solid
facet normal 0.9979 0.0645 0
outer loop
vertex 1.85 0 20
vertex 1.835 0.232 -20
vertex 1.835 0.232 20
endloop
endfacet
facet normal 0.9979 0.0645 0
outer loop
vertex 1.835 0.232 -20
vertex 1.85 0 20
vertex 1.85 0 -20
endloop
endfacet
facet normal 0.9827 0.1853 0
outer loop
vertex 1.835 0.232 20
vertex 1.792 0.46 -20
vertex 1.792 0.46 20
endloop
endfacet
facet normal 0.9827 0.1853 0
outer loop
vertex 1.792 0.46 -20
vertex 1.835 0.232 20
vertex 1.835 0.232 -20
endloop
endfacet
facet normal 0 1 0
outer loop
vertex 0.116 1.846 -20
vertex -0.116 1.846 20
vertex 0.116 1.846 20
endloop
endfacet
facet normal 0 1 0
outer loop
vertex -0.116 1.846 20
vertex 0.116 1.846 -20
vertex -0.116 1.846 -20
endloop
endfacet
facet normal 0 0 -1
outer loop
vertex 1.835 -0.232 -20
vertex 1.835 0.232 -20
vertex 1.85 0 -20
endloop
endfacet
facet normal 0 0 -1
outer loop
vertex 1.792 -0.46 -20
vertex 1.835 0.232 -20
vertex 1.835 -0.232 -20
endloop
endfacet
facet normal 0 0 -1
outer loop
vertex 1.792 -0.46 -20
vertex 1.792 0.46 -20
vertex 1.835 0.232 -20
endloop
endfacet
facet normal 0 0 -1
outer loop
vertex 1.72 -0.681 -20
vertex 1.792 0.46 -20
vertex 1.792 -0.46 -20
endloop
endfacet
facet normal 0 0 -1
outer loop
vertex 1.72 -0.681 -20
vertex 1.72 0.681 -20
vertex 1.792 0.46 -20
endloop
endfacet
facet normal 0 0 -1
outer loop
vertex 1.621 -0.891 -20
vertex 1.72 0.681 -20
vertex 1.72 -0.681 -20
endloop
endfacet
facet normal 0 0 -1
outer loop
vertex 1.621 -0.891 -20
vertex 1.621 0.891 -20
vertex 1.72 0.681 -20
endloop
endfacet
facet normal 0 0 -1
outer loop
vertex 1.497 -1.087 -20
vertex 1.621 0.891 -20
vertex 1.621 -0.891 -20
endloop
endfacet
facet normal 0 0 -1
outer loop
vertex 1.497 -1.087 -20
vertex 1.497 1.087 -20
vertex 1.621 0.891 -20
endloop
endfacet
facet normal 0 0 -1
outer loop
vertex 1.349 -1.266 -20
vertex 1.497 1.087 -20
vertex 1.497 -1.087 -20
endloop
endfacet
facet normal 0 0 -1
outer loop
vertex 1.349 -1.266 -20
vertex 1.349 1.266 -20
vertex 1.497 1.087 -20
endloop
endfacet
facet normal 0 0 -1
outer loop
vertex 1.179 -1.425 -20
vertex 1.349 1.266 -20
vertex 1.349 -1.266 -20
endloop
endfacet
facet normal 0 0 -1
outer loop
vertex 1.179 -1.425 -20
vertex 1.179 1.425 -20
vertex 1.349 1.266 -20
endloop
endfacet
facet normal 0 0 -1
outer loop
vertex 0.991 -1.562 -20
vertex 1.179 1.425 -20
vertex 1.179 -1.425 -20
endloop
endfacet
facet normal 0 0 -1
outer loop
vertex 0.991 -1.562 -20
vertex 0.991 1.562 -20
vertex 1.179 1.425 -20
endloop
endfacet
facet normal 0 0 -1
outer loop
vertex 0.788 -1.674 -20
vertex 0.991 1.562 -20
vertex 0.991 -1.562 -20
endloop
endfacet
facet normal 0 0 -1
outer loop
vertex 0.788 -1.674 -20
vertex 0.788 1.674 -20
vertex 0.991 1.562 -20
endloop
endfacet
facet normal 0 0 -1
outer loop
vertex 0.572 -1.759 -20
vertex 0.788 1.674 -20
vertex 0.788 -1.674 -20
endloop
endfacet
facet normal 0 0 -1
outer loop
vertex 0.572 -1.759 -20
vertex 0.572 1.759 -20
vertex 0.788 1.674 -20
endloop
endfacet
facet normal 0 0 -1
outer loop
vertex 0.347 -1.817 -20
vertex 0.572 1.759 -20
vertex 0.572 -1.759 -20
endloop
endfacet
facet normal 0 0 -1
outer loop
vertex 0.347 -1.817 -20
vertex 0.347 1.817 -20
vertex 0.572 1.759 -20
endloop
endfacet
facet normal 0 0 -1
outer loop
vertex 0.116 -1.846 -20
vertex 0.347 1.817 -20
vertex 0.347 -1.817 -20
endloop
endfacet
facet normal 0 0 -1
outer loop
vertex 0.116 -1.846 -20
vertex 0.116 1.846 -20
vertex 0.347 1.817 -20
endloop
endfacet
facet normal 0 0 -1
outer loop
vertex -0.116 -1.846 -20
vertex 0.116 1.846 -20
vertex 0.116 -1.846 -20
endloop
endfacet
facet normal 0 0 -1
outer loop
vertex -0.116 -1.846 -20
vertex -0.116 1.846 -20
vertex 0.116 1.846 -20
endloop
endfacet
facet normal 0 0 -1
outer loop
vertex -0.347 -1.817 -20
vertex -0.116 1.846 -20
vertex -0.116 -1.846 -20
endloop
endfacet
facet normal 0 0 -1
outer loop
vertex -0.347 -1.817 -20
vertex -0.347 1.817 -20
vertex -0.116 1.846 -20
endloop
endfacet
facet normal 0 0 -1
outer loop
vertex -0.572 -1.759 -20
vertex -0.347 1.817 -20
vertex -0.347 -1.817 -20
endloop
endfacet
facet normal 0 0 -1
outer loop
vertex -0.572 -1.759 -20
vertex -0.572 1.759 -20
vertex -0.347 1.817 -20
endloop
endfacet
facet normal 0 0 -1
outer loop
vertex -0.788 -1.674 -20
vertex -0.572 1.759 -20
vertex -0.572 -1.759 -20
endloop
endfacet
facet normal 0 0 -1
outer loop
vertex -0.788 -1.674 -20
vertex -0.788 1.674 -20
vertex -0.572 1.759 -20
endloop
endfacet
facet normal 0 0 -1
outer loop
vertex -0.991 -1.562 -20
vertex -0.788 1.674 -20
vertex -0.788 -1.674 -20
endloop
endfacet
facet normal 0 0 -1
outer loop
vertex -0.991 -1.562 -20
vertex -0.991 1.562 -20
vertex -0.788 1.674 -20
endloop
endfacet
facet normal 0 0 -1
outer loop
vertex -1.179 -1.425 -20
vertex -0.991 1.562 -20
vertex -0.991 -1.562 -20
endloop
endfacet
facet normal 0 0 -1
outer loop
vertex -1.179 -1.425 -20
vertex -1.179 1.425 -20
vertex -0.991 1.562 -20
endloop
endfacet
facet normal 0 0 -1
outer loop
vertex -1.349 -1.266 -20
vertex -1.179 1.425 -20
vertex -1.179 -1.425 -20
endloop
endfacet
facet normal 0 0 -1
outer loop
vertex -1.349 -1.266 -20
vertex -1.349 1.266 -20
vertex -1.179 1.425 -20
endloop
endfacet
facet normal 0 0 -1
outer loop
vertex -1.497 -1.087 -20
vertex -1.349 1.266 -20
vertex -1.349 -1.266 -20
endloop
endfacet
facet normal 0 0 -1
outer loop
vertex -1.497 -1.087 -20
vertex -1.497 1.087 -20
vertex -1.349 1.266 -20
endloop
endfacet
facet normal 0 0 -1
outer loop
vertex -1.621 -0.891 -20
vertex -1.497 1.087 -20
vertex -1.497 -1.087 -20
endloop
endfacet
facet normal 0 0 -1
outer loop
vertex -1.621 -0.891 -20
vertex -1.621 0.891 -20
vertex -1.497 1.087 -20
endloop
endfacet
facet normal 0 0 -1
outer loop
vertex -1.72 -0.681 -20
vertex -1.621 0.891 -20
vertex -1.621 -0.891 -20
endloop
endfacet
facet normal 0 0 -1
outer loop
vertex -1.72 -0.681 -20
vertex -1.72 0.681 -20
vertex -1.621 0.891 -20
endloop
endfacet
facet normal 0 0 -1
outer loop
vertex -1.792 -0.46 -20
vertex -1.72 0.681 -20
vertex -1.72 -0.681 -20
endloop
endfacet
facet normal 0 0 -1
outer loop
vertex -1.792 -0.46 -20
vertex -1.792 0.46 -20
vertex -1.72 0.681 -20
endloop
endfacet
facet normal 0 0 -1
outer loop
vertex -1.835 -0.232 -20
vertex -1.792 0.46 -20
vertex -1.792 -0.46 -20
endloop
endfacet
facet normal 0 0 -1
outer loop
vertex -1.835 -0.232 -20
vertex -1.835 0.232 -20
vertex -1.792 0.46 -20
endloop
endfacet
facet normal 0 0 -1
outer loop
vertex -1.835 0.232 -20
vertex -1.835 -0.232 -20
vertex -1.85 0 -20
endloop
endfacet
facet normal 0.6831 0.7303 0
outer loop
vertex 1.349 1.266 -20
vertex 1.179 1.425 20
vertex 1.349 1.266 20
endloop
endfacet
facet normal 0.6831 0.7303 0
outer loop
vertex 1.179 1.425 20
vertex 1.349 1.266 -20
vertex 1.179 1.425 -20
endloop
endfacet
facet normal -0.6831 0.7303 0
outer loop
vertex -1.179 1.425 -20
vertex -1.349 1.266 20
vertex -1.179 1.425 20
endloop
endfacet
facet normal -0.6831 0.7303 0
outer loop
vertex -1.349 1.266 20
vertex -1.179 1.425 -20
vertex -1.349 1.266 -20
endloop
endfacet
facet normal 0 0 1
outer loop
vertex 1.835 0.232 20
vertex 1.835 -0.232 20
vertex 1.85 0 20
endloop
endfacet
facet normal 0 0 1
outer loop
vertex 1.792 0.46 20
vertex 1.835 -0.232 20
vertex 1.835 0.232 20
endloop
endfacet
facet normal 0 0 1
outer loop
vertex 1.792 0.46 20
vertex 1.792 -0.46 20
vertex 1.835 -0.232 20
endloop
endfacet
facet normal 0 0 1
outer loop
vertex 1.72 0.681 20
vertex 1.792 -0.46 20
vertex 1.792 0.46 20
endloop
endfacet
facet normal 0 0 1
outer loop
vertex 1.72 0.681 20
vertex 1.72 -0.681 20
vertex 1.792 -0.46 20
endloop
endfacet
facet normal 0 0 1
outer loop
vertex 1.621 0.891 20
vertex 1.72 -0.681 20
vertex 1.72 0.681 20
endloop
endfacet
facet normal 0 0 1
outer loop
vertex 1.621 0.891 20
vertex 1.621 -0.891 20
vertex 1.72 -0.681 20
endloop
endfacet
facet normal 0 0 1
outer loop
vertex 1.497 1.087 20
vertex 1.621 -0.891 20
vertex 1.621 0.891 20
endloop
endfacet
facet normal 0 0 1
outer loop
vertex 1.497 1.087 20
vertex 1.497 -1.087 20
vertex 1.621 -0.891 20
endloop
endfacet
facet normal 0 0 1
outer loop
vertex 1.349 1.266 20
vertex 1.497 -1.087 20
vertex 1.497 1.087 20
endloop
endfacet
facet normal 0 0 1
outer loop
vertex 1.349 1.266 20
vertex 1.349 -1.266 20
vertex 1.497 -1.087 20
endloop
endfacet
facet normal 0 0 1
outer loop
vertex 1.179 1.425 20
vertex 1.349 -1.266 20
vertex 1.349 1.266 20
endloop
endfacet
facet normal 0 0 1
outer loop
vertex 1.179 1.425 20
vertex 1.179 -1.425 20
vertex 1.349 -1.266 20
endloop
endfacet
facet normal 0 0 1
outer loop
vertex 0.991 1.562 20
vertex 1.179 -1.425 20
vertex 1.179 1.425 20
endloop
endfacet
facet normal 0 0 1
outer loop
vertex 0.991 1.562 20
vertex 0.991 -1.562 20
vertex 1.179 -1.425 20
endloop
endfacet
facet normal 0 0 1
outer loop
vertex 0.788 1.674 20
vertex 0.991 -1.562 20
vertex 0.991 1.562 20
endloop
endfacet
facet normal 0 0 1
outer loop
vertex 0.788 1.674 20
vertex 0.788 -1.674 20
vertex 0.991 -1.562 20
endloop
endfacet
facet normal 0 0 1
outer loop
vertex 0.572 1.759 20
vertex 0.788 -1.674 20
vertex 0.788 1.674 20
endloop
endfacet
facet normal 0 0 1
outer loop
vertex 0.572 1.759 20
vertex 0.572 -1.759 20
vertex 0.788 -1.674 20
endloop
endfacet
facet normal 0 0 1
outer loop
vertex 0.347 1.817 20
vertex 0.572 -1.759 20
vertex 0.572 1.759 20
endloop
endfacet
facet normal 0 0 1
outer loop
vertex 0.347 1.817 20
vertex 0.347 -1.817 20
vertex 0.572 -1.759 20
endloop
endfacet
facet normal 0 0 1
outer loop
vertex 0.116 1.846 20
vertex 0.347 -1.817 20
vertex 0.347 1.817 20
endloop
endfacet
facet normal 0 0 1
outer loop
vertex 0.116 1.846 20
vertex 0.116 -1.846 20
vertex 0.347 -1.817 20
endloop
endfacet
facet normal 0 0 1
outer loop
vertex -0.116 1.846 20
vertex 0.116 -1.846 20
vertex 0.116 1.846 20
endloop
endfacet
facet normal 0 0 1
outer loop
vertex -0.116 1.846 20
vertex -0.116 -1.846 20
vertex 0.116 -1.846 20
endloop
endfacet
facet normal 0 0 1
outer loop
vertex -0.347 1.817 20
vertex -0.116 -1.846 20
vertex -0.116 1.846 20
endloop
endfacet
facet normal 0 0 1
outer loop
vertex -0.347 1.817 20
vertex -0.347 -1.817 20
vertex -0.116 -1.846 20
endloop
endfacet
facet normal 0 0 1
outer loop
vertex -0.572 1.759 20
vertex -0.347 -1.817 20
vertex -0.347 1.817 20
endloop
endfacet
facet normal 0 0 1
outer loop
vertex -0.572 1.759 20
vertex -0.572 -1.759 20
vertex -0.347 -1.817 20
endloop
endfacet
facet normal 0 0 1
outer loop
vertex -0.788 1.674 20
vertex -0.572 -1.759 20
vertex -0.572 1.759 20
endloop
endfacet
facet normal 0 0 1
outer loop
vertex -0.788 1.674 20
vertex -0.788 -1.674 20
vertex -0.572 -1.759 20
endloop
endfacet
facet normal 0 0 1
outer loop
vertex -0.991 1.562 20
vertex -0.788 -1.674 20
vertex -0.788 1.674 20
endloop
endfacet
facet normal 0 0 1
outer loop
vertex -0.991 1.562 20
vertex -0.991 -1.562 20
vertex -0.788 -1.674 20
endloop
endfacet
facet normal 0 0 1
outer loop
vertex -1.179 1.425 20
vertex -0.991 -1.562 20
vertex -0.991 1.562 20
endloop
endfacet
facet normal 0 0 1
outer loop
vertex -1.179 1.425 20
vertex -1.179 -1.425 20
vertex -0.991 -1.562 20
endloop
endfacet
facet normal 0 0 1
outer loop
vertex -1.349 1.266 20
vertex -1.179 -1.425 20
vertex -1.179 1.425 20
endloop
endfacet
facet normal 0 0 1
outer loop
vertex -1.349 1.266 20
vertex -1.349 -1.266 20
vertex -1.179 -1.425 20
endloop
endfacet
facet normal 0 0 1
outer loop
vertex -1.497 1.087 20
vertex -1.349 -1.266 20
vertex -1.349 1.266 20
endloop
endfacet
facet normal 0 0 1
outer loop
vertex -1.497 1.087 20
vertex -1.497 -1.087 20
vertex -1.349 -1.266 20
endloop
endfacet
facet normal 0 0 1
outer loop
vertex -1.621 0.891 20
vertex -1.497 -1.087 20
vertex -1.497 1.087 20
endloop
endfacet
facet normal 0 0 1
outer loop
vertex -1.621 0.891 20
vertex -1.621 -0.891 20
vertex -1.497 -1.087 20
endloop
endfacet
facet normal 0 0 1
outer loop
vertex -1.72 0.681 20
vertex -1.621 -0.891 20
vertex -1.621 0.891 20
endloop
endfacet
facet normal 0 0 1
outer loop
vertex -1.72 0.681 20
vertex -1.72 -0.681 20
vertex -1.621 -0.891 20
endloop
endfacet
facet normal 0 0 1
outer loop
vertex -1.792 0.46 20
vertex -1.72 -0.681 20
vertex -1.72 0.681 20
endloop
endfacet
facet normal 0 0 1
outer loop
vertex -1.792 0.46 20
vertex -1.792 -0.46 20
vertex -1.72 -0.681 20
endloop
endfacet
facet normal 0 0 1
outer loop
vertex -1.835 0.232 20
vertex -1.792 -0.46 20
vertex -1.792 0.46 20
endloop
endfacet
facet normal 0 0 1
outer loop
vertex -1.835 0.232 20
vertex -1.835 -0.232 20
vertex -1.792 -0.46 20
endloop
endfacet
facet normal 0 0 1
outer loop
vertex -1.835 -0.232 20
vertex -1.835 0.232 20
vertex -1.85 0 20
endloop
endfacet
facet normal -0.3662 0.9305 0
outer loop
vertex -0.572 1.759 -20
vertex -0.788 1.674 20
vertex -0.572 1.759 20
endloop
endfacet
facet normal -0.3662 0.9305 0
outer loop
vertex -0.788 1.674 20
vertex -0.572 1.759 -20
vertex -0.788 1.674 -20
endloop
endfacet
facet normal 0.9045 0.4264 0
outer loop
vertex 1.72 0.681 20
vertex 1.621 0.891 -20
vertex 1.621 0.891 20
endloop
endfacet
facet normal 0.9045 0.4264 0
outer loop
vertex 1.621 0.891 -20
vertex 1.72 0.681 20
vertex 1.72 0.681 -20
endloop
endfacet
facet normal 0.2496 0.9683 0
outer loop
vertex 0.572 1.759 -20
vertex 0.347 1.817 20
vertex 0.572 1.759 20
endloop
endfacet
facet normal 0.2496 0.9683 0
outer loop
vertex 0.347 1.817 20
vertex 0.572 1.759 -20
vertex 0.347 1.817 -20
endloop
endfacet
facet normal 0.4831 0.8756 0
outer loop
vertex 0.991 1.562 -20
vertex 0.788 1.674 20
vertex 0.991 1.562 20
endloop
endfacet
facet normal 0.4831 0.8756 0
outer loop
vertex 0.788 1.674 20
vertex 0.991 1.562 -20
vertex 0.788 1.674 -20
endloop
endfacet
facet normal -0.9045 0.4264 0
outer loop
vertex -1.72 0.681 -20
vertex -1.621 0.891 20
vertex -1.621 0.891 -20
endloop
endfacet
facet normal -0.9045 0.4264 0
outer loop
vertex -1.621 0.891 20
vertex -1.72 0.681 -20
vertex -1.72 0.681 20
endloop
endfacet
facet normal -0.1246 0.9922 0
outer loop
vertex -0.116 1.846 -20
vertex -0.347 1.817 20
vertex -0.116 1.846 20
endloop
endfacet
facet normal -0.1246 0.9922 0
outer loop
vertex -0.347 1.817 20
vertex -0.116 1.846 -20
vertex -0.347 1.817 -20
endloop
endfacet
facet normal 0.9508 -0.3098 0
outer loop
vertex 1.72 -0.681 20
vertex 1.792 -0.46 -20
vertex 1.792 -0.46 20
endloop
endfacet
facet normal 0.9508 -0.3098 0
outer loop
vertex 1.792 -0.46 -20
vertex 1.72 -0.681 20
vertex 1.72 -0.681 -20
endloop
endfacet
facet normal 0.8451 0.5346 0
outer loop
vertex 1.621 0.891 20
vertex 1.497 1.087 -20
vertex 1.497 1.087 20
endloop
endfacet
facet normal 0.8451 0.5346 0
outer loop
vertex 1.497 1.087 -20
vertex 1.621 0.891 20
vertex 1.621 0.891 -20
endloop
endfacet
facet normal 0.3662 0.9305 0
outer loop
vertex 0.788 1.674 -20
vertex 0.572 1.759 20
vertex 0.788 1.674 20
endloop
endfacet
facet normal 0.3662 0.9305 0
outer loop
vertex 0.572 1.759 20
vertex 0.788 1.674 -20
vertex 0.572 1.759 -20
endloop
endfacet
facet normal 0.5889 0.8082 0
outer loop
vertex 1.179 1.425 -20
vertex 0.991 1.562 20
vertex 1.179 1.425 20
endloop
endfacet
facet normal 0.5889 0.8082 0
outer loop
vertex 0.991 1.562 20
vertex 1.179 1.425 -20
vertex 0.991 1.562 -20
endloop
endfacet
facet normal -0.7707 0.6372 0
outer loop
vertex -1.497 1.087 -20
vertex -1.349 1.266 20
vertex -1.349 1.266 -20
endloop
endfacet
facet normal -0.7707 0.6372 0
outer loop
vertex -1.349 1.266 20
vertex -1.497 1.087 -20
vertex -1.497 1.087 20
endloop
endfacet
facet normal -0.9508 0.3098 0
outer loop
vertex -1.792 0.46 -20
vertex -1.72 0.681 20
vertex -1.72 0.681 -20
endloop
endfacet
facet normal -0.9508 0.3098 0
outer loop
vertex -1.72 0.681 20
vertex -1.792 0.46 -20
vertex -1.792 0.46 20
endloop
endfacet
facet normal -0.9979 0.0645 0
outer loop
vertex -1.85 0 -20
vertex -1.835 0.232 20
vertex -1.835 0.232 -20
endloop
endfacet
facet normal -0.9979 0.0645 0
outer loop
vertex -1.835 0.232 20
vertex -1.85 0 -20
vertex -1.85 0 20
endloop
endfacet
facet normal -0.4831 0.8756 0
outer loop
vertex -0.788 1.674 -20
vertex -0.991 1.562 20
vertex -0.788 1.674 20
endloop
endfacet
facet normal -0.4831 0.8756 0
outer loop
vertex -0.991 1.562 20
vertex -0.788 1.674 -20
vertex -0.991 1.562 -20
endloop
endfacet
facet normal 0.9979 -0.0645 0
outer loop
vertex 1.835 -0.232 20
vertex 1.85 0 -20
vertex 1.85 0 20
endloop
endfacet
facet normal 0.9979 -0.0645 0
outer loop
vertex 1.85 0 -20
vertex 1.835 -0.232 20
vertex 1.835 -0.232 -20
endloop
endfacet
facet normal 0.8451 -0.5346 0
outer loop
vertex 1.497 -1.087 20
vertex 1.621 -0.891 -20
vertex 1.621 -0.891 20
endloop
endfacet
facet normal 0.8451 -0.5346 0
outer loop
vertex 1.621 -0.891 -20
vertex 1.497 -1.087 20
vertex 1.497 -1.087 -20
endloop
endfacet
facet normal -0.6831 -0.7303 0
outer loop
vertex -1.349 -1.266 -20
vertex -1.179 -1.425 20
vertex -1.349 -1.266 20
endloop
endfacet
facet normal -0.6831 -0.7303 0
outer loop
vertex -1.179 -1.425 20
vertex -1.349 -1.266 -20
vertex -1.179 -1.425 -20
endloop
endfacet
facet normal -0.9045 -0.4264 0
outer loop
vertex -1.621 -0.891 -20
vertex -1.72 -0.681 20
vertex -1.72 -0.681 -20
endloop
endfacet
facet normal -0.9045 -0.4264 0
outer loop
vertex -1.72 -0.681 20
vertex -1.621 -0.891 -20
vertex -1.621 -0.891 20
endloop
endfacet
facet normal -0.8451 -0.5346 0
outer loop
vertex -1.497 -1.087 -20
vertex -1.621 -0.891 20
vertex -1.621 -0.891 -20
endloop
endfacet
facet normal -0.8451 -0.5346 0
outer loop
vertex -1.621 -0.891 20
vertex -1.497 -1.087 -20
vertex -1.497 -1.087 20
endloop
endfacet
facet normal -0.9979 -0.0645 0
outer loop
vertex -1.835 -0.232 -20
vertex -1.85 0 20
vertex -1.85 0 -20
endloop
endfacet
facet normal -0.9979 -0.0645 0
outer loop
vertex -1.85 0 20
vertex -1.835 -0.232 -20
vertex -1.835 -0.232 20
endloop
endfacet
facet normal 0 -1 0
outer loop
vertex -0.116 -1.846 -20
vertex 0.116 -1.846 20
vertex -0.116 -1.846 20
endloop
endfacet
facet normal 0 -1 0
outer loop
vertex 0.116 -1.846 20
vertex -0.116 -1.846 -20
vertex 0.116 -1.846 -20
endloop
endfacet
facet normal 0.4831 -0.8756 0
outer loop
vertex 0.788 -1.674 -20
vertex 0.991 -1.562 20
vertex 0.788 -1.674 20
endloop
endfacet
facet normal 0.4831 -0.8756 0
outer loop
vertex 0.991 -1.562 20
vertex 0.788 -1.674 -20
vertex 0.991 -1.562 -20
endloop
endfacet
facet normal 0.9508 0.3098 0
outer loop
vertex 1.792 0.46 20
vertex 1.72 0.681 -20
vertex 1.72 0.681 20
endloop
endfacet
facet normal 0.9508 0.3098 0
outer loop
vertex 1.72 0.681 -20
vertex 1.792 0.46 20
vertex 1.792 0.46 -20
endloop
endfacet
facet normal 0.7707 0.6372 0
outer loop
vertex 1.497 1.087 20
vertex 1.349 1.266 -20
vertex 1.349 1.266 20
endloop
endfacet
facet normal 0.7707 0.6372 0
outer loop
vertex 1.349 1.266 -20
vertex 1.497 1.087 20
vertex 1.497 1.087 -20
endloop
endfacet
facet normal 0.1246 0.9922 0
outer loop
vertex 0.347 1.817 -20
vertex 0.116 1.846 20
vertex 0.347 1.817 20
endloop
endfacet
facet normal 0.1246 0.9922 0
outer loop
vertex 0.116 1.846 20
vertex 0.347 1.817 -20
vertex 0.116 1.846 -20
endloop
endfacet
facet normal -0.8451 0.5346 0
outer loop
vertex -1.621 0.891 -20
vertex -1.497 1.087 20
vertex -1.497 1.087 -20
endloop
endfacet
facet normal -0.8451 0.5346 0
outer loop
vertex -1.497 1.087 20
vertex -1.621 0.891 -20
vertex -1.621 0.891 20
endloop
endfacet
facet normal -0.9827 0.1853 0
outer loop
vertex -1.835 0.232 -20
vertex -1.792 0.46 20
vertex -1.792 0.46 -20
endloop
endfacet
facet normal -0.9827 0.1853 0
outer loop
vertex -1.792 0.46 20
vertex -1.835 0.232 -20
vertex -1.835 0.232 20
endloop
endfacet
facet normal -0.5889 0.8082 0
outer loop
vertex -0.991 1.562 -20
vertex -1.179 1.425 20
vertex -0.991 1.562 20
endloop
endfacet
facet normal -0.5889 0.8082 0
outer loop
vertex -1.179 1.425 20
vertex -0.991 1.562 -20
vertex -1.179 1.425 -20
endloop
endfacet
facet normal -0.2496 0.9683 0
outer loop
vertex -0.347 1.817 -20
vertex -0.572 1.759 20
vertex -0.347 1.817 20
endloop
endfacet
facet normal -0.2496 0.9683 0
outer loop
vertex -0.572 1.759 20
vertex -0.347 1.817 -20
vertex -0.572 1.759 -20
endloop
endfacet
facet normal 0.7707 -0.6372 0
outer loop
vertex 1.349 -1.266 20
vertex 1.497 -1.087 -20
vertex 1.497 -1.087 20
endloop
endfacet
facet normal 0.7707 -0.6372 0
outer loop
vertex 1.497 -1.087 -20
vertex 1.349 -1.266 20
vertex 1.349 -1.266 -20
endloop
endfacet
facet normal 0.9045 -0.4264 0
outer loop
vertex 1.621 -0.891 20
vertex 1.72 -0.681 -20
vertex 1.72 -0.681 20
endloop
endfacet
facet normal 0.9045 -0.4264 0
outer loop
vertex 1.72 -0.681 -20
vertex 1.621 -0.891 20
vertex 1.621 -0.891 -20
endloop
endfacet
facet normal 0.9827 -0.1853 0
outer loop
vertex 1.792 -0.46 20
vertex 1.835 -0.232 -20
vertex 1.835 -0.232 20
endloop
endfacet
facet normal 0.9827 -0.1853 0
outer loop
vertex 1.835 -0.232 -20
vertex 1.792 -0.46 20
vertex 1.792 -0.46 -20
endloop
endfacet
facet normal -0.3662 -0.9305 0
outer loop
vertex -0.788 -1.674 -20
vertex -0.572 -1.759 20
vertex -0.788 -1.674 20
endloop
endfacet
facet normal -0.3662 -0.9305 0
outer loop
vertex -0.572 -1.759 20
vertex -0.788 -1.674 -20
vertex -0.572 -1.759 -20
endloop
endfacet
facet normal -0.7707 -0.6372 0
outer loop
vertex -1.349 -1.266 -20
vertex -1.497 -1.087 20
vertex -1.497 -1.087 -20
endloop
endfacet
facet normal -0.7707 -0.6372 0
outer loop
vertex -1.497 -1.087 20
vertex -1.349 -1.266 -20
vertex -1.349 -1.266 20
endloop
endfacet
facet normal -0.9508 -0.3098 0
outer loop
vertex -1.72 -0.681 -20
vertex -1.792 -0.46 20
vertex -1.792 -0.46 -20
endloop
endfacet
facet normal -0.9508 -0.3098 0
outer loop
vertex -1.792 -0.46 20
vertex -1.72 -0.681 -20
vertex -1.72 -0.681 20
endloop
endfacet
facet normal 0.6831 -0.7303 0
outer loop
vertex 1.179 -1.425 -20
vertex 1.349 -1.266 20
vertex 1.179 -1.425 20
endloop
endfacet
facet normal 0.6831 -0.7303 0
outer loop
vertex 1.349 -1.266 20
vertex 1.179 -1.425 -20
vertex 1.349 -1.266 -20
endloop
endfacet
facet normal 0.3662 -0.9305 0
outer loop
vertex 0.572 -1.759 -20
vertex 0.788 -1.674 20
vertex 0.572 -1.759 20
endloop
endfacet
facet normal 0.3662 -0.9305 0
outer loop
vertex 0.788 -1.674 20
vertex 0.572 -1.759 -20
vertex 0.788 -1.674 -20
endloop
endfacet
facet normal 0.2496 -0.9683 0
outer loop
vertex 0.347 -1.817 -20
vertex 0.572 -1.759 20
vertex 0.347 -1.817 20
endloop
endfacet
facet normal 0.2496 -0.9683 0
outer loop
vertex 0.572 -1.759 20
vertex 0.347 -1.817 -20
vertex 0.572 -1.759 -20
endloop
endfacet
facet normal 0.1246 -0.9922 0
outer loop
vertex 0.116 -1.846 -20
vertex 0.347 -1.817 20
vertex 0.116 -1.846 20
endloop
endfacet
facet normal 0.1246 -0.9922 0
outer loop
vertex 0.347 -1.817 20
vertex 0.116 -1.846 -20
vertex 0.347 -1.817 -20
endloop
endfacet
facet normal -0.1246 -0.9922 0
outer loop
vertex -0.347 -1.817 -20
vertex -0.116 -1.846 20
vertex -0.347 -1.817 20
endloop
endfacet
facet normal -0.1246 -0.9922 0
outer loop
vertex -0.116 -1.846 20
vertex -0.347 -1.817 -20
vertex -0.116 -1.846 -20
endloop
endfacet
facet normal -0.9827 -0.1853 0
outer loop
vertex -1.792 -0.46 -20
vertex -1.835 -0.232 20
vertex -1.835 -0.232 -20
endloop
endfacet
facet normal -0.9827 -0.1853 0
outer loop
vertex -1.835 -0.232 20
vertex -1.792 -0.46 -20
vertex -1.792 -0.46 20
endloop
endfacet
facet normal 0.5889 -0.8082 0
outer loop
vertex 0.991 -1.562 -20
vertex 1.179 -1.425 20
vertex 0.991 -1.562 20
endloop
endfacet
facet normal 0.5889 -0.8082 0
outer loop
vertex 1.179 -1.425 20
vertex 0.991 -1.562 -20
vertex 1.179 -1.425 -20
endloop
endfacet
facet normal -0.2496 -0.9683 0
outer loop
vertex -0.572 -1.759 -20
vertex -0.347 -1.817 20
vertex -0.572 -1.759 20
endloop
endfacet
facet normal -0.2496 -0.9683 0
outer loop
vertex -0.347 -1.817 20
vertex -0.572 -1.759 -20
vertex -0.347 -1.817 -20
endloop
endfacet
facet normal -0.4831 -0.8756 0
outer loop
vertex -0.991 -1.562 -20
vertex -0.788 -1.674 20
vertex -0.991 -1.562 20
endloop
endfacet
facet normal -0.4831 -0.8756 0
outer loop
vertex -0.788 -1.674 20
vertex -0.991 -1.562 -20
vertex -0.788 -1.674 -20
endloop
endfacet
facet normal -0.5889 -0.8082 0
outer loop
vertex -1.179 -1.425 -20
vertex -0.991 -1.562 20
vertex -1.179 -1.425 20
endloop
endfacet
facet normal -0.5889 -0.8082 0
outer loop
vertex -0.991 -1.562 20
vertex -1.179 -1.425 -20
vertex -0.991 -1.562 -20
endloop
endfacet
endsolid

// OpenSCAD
$fn = 50;


difference() {
	union() {
		translate(v = [0, 0, -20.0000000000]) {
			cylinder(h = 40, r = 1.8500000000);
		}
	}
	union() {
		translate(v = [0, 0, -100.0000000000]) {
			cylinder(h = 200, r = 0);
		}
	}
}
